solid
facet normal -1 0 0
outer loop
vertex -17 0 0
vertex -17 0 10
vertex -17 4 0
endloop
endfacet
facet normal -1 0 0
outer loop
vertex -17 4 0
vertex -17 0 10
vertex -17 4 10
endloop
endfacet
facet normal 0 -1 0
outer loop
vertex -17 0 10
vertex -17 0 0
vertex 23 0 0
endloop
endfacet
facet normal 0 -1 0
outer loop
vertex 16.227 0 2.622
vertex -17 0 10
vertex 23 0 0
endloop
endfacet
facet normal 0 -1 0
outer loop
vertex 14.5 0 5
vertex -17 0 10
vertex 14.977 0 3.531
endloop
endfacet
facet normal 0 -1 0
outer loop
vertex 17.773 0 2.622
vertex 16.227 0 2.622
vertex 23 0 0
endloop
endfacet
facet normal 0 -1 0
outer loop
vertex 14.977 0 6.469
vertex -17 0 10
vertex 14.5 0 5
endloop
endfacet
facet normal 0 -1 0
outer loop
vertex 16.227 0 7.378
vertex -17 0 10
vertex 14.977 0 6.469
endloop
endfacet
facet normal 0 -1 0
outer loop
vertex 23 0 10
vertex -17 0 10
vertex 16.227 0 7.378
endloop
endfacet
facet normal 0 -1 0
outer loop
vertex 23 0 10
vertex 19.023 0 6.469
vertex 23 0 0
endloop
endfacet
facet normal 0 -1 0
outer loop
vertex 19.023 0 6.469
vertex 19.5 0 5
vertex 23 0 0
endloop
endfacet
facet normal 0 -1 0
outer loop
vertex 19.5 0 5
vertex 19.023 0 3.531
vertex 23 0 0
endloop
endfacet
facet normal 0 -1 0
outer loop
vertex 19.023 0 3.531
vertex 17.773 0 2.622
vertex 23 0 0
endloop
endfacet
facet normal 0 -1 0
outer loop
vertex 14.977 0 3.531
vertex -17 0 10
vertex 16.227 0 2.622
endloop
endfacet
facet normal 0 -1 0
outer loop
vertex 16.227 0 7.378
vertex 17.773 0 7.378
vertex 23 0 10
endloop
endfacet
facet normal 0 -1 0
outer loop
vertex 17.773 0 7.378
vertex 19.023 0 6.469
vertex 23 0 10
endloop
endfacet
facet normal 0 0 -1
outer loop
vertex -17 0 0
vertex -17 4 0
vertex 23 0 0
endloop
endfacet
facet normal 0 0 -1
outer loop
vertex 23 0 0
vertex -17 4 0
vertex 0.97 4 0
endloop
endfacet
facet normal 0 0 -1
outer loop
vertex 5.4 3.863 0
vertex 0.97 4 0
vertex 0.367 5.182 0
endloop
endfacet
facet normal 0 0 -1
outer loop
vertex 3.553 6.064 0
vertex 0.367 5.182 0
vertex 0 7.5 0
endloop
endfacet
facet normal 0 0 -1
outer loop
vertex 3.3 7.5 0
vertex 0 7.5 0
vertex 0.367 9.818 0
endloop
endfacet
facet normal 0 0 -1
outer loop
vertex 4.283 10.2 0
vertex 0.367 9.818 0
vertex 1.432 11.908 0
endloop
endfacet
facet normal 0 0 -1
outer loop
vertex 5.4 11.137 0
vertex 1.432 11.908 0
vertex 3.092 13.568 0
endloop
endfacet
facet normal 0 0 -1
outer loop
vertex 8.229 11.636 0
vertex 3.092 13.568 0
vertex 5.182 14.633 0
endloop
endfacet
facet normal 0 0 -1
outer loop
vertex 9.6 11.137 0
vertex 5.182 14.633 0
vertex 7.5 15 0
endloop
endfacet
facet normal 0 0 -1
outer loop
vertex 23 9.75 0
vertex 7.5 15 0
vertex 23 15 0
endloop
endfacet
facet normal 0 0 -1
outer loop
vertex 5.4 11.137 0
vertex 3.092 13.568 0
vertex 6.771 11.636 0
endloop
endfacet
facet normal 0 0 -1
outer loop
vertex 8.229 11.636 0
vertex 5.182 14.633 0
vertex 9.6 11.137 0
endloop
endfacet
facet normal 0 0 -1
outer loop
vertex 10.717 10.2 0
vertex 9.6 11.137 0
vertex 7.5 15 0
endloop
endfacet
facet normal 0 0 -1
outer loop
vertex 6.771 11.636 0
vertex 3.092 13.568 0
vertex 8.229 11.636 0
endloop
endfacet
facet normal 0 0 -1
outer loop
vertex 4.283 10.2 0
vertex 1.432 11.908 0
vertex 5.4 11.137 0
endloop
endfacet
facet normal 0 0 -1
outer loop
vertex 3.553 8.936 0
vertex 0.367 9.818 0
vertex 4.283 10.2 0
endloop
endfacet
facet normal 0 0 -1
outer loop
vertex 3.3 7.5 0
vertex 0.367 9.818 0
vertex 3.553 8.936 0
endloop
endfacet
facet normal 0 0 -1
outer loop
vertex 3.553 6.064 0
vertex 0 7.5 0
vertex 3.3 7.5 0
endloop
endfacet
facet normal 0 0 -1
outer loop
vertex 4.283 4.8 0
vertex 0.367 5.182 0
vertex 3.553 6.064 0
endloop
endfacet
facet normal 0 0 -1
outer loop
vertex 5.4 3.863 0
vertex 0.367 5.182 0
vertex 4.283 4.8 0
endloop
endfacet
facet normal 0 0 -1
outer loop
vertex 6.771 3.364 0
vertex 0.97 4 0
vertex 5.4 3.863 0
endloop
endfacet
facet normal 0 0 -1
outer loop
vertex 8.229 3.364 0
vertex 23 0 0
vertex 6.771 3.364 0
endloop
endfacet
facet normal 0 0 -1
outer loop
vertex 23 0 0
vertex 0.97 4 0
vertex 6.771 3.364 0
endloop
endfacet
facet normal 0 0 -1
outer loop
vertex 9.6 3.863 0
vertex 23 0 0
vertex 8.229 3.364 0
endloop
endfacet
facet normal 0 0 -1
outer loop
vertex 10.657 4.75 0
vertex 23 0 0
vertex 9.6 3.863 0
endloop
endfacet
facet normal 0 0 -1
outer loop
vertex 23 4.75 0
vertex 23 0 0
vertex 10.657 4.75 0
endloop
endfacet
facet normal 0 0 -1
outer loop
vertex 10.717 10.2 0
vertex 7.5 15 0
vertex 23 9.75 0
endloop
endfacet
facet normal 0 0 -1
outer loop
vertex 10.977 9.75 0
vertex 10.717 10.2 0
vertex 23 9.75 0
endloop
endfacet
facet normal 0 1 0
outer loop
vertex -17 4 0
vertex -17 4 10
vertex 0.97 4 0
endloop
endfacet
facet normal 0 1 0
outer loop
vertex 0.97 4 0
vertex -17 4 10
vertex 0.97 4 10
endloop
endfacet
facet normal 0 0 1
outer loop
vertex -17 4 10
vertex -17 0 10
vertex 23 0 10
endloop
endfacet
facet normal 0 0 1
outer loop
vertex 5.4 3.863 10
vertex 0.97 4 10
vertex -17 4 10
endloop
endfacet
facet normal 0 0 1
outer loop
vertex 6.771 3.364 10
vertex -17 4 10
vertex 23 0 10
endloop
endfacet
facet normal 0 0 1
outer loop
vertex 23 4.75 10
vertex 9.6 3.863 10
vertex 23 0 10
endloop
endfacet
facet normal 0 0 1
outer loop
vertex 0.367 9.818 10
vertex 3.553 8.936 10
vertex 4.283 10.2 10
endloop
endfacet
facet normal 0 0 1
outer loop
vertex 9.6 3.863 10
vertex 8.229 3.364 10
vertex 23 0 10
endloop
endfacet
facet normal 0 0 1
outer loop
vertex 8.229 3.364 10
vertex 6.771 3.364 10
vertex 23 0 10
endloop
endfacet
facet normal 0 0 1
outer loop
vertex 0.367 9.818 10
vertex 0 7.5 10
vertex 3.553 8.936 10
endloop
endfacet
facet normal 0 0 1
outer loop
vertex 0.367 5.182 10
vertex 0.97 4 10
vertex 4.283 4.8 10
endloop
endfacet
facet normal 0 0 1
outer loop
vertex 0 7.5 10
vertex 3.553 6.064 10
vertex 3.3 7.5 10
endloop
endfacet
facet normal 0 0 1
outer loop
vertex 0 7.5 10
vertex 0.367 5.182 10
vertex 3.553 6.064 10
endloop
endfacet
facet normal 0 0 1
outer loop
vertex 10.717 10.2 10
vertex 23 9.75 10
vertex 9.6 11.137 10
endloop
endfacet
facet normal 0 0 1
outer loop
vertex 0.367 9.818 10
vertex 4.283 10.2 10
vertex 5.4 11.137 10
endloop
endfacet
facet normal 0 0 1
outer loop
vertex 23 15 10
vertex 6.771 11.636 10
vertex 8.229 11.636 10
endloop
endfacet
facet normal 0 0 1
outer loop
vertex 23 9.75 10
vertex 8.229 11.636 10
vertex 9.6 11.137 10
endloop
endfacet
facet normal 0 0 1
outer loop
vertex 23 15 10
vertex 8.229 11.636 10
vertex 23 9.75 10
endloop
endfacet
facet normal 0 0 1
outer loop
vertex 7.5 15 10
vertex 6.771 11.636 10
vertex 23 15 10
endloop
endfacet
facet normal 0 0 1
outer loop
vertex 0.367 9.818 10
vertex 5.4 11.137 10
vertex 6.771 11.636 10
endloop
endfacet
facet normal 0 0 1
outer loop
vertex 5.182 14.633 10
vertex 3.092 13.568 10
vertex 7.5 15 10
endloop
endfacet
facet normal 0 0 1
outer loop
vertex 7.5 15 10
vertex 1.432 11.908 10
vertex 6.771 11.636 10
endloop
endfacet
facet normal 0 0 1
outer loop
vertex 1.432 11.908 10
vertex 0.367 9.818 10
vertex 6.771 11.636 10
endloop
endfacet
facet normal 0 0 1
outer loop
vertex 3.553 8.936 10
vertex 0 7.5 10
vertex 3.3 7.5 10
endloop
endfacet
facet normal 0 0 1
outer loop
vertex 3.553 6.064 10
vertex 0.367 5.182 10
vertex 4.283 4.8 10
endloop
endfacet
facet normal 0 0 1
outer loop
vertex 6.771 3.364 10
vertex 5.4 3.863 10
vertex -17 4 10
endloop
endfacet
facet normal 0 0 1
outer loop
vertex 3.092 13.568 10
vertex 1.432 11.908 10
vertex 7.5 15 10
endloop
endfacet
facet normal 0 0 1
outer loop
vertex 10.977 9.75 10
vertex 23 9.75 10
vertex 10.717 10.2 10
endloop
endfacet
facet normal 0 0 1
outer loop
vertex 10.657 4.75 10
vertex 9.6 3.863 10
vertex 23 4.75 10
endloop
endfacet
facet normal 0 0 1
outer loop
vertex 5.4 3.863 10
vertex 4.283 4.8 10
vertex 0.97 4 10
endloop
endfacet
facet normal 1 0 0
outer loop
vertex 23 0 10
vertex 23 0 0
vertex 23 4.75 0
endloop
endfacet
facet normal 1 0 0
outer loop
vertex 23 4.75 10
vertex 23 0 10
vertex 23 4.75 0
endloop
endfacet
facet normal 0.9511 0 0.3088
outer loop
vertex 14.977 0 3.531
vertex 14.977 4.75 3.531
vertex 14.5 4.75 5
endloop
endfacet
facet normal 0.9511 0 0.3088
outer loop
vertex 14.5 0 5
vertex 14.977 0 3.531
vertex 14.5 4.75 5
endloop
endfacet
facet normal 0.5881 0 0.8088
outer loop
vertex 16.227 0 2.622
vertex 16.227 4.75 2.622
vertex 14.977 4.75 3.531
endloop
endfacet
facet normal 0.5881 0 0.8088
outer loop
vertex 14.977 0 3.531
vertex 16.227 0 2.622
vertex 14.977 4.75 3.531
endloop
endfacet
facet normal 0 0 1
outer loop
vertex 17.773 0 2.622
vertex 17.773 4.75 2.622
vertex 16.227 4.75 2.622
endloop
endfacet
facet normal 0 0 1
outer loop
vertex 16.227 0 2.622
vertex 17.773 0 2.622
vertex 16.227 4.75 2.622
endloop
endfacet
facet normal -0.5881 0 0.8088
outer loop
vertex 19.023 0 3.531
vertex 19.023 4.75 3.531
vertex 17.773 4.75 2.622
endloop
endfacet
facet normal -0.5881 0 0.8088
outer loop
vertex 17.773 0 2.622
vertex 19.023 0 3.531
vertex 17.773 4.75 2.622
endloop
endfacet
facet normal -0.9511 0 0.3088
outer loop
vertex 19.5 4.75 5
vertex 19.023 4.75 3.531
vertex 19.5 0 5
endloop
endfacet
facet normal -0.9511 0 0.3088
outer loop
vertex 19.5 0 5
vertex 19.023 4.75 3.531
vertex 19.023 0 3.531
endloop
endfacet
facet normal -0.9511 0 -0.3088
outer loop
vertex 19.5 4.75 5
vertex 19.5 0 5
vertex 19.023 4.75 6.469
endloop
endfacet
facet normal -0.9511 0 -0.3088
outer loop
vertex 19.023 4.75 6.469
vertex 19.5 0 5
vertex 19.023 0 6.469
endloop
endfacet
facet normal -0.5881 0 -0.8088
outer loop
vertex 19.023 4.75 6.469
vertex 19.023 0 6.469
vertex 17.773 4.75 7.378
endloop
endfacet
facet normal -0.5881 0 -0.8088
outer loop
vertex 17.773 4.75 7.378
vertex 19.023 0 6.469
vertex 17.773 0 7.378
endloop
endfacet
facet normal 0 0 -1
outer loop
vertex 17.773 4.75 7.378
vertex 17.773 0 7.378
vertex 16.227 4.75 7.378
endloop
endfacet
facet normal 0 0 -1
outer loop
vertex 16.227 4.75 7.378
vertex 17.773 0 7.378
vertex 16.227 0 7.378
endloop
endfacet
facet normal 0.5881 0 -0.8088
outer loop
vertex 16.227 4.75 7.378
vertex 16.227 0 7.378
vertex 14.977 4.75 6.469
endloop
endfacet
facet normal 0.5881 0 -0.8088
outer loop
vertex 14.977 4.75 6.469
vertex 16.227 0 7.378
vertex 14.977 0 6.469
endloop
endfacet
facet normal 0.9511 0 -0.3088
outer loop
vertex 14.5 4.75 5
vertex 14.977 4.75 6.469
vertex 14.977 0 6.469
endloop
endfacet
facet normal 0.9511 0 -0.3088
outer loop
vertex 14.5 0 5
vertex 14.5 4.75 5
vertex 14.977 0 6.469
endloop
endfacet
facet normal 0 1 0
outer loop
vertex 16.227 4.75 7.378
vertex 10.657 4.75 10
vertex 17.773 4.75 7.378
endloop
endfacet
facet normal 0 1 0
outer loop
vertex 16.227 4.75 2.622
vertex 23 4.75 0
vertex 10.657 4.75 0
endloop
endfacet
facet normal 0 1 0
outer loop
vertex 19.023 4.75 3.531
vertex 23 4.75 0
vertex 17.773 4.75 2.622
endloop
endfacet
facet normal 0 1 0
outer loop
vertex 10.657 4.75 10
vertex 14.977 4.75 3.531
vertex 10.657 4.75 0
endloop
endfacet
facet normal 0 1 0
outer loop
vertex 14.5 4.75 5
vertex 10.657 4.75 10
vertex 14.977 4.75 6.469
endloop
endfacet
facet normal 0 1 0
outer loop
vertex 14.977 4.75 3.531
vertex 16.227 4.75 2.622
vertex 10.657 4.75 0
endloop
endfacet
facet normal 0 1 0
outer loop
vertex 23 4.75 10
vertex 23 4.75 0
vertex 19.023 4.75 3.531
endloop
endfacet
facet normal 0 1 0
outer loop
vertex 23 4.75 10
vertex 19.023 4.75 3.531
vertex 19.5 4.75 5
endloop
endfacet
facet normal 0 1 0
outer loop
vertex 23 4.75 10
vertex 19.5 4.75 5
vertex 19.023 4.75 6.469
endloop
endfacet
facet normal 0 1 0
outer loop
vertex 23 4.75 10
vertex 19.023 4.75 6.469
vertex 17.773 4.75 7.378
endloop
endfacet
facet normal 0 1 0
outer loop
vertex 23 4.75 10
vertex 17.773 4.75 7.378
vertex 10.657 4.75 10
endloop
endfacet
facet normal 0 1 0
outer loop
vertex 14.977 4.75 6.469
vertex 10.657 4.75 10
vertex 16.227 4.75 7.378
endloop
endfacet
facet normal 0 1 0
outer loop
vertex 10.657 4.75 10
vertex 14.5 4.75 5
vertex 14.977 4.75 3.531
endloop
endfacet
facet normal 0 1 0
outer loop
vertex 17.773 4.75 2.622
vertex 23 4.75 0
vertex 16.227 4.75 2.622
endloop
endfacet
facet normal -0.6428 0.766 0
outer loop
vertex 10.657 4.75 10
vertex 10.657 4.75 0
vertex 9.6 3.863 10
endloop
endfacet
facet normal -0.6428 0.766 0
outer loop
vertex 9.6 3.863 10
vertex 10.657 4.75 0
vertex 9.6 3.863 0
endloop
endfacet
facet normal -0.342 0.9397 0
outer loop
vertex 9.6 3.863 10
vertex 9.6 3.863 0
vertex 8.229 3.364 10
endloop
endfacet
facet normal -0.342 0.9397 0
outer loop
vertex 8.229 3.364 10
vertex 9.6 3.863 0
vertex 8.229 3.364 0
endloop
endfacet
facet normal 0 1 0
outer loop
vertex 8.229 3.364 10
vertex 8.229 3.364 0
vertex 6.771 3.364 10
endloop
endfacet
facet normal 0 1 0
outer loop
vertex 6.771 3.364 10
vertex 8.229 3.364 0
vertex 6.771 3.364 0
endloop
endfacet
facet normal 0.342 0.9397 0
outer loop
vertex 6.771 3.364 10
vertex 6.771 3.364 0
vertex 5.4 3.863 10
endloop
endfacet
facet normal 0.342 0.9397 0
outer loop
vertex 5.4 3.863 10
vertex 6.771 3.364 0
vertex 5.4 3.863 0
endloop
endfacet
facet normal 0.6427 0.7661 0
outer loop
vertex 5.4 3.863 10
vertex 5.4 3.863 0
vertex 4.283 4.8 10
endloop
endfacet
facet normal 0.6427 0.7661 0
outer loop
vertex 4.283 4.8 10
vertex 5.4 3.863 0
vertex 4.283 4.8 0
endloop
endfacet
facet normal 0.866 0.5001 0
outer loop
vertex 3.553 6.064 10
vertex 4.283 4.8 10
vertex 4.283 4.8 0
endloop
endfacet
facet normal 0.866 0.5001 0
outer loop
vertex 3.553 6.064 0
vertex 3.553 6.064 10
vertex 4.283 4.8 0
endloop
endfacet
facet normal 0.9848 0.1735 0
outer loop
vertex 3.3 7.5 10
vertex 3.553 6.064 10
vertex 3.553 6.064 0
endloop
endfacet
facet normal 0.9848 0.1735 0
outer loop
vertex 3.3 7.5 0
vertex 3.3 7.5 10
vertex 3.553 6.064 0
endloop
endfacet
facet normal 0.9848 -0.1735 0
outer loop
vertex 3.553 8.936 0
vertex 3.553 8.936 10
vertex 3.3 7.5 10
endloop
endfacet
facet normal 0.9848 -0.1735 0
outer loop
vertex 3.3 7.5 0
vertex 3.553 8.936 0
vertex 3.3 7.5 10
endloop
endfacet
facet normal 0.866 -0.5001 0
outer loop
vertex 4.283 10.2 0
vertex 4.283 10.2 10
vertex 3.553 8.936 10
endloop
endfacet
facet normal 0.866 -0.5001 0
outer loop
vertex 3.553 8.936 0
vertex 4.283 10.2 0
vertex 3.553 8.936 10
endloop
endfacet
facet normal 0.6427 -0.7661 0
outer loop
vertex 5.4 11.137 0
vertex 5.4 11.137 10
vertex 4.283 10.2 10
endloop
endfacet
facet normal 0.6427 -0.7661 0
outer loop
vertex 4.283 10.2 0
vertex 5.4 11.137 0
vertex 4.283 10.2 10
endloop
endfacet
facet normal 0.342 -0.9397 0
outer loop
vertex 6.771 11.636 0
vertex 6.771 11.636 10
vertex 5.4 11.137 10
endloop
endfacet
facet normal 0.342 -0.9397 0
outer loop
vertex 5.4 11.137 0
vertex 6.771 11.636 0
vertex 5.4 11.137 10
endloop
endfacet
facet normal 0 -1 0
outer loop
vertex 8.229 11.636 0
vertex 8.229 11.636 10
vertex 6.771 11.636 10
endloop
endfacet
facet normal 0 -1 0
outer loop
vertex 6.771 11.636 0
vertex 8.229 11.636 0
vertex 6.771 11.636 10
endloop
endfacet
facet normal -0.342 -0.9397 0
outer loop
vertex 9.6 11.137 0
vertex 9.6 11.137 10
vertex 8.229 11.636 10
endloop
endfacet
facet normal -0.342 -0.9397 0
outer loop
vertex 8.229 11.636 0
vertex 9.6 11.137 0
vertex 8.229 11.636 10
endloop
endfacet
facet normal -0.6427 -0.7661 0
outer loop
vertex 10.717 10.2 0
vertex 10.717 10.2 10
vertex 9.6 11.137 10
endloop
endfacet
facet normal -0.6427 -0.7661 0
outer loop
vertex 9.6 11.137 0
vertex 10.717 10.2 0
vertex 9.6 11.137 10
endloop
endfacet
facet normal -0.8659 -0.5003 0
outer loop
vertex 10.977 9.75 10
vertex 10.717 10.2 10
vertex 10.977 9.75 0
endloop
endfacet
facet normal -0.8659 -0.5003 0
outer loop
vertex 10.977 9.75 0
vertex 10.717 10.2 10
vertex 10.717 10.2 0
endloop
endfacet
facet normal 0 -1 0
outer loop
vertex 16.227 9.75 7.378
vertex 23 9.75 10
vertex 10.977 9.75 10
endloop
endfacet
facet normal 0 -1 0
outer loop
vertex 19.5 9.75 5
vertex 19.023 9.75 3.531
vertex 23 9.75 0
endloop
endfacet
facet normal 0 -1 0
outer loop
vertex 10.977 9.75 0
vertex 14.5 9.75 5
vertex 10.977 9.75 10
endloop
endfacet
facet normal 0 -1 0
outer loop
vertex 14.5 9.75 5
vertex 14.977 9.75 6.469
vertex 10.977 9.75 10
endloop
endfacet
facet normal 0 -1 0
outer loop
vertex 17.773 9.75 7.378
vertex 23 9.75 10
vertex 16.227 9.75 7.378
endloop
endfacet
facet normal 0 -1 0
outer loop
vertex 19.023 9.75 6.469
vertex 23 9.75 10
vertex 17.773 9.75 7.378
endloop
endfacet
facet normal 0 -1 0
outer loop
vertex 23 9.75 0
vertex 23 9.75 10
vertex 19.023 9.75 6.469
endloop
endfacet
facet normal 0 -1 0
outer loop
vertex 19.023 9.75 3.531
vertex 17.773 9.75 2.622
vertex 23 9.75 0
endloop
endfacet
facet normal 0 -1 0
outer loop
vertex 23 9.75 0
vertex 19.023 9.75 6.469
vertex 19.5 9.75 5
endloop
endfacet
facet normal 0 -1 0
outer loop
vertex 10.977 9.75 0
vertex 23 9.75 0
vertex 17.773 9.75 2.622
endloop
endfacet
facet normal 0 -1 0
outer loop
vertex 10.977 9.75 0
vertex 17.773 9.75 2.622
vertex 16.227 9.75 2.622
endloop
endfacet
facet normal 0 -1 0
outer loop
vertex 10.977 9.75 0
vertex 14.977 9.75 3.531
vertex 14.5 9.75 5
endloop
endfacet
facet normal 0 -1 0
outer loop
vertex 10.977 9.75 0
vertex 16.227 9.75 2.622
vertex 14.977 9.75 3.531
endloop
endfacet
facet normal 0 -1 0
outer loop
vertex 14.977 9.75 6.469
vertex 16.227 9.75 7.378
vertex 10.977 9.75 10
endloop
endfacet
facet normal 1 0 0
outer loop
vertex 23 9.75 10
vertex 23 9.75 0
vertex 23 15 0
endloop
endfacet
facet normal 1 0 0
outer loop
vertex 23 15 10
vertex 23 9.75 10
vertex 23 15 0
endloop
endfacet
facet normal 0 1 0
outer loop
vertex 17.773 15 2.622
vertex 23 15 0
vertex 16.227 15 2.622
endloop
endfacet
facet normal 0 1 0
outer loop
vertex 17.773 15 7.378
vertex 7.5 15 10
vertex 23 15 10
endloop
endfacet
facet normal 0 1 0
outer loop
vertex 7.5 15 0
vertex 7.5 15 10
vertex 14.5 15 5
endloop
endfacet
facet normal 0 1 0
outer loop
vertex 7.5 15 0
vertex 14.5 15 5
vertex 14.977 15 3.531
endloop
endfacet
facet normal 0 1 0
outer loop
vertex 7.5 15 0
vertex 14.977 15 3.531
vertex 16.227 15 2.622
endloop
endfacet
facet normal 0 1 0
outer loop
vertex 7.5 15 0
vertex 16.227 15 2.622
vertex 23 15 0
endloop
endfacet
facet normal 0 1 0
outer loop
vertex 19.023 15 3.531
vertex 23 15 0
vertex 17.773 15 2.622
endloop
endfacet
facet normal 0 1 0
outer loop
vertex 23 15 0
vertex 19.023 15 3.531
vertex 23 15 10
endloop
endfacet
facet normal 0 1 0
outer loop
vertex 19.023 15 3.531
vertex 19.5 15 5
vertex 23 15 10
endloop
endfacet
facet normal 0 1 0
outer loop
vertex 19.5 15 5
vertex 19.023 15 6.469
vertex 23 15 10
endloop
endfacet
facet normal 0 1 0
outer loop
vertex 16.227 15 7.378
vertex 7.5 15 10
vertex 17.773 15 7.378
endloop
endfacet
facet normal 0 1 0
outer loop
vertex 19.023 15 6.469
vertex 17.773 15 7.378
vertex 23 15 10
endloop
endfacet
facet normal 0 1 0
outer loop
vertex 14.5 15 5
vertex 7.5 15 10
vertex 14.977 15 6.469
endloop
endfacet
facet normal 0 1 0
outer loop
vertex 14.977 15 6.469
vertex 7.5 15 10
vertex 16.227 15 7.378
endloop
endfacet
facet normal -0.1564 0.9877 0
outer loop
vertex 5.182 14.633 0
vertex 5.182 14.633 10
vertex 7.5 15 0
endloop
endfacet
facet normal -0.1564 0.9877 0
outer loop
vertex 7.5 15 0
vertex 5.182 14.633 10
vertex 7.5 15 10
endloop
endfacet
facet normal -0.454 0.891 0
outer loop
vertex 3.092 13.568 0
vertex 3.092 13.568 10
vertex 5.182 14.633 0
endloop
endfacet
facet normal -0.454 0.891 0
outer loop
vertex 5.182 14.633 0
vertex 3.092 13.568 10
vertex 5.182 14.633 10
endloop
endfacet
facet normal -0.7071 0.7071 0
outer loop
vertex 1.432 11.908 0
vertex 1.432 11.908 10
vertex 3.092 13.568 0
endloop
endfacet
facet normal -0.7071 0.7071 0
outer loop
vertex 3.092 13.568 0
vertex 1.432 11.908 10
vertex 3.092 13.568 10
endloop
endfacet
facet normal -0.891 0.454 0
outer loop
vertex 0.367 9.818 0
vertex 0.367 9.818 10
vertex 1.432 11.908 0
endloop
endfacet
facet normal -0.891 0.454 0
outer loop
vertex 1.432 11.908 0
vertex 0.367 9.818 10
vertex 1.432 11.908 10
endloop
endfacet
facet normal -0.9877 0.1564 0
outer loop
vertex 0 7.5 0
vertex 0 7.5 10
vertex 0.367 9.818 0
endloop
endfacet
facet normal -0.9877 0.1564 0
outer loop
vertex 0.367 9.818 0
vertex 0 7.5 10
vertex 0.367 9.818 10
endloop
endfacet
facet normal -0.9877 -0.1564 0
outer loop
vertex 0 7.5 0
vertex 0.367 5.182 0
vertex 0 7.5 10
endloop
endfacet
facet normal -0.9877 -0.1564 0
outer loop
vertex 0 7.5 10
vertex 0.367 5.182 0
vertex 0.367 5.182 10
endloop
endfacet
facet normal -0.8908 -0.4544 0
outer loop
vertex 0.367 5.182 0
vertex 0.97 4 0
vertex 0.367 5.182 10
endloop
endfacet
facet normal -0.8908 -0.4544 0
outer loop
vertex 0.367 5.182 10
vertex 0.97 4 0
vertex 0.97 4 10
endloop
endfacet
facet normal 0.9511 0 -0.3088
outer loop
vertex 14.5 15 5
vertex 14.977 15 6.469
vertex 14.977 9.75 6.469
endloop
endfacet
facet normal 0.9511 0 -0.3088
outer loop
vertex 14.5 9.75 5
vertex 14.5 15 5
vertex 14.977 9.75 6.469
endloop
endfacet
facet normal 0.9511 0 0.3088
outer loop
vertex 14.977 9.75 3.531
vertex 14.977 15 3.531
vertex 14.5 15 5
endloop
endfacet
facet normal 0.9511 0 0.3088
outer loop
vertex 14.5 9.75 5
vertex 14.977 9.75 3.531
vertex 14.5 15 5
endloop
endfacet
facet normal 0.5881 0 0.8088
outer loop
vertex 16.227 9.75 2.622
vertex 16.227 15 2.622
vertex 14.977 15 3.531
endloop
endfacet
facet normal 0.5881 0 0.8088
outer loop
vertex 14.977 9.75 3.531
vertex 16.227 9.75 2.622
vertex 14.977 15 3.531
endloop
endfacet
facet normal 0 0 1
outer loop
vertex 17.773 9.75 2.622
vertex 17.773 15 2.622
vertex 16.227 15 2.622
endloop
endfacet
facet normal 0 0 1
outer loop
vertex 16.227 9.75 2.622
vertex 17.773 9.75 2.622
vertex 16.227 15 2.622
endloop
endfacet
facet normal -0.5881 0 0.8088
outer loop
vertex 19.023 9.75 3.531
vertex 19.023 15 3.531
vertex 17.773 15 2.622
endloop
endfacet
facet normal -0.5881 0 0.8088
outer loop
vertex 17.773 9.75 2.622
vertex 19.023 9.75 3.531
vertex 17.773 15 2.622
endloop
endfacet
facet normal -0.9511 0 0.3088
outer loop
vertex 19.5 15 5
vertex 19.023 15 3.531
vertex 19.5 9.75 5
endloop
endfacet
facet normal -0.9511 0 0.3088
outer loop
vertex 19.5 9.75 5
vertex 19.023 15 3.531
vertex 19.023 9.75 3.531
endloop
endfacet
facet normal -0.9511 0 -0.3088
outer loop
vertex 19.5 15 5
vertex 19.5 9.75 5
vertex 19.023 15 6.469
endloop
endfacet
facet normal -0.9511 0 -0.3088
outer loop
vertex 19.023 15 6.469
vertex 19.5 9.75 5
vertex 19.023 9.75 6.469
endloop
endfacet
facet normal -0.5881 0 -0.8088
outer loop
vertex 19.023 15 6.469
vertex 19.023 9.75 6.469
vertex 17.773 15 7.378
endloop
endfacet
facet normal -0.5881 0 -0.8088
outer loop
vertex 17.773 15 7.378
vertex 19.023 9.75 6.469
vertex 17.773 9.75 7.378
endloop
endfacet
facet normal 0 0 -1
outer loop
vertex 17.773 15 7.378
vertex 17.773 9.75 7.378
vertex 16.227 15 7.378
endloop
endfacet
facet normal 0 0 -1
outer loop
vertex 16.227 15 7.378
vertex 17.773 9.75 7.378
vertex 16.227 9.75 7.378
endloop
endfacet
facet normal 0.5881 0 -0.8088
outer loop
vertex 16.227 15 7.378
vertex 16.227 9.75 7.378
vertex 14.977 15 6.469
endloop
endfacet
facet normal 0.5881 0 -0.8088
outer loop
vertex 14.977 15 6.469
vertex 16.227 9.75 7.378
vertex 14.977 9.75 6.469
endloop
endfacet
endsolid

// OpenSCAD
// file: configuration-metric.scad
// PRUSA Mendel  
// Metric Configuration file
// GNU GPL v2
// Josef Průša
// josefprusa@me.com
// prusadjs.cz
// http://www.reprap.org/wiki/Prusa_Mendel
// http://github.com/prusajr/PrusaMendel

// CONFIGURATION FILE FOR METRIC VARIANT OF PRUSA MENDEL

// M8 rod diameter
m8_diameter = 8.4;

// M8 nut diameter diameter
// Used for $fn nut trick -> cylinder(h = 5, r=m8_nut_diameter, $fn=6, center=true);
m8_nut_diameter = 16.4;

// M4 rod/screw diameter
m4_diameter = 5;

// M4 nut diameter
// Used for $fn nut trick -> cylinder(h = 5, r=m4_nut_diameter, $fn=6, center=true);
m4_nut_diameter = 9;

// M3 rod/screw diameter
m3_diameter = 4.4;

// M3 nut diameter diameter
// Used for $fn nut trick -> cylinder(h = 5, r=m3_nut_diameter, $fn=6, center=true);
m3_nut_diameter = 7;

// Bushing holders diameter
bushing_diameter = 11;

//Motor shaft diameter
motor_shaft=5;

//Bushings
	//Size of rod on which it will slide
	bushing_rodsize = 8;
	
	//Size of whole bushings (diameter because the core is cylinder)
	bushing_outerDiameter = 16;
	
	//How long they are going to be
	bushing_lenght = 11;
	
	// TYPE Can generate three versions
	// 1 - regular old ones
	// 2 - helical ones
	// 3 - holders for brass or any other bought bushings
	bushing_type = 2;
// file: configuration.scad
// PRUSA Mendel  
// Configuration file
// GNU GPL v2
// Josef Průša
// josefprusa@me.com
// prusadjs.cz
// http://www.reprap.org/wiki/Prusa_Mendel
// http://github.com/prusajr/PrusaMendel

// PLESE SELECT ONE OF THE CONFIGURATION FILES
// BY UN-COMMENTING IT

// METRIC VERSION
include <configuration-metric.scad>

// IMPERIAL VERSION (TODO, just place holder)
// Spacexula will do it ;-)
// include <configuration-imperial.scad>

// MINI-HUXLEY VERSION (TODO, just place holder)
// include <configuration-huxley.scad>

// MEGA VERSION (TODO, just place holder)
// include <configuration-mega.scad>
// main file
// PRUSA Mendel  
// Bar clamp
// Used for joining 8mm rods
// GNU GPL v2
// Josef Průša
// josefprusa@me.com
// prusadjs.cz
// http://www.reprap.org/wiki/Prusa_Mendel
// http://github.com/prusajr/PrusaMendel

include <configuration.scad>

outer_diameter = m8_diameter/2+3.3;

difference(){
	union(){
		
		translate([outer_diameter, outer_diameter, 0])#cylinder(h =10, r = outer_diameter, $fn = 20);
		translate([outer_diameter, 0, 0])cube([15.5,outer_diameter*2,10]);
		translate([-17, 0, 0])cube([25,04,10]);
	}


	translate([9, outer_diameter/2+1, 0])cube([18,05,20]);
	translate([outer_diameter, outer_diameter, 0]) #cylinder(h =20, r = m8_diameter/2, $fn = 18);
	translate([17, 17, 5]) rotate([90, 0, 0]) #cylinder(h =20, r = m4_diameter/2, $fn = 10);
}
